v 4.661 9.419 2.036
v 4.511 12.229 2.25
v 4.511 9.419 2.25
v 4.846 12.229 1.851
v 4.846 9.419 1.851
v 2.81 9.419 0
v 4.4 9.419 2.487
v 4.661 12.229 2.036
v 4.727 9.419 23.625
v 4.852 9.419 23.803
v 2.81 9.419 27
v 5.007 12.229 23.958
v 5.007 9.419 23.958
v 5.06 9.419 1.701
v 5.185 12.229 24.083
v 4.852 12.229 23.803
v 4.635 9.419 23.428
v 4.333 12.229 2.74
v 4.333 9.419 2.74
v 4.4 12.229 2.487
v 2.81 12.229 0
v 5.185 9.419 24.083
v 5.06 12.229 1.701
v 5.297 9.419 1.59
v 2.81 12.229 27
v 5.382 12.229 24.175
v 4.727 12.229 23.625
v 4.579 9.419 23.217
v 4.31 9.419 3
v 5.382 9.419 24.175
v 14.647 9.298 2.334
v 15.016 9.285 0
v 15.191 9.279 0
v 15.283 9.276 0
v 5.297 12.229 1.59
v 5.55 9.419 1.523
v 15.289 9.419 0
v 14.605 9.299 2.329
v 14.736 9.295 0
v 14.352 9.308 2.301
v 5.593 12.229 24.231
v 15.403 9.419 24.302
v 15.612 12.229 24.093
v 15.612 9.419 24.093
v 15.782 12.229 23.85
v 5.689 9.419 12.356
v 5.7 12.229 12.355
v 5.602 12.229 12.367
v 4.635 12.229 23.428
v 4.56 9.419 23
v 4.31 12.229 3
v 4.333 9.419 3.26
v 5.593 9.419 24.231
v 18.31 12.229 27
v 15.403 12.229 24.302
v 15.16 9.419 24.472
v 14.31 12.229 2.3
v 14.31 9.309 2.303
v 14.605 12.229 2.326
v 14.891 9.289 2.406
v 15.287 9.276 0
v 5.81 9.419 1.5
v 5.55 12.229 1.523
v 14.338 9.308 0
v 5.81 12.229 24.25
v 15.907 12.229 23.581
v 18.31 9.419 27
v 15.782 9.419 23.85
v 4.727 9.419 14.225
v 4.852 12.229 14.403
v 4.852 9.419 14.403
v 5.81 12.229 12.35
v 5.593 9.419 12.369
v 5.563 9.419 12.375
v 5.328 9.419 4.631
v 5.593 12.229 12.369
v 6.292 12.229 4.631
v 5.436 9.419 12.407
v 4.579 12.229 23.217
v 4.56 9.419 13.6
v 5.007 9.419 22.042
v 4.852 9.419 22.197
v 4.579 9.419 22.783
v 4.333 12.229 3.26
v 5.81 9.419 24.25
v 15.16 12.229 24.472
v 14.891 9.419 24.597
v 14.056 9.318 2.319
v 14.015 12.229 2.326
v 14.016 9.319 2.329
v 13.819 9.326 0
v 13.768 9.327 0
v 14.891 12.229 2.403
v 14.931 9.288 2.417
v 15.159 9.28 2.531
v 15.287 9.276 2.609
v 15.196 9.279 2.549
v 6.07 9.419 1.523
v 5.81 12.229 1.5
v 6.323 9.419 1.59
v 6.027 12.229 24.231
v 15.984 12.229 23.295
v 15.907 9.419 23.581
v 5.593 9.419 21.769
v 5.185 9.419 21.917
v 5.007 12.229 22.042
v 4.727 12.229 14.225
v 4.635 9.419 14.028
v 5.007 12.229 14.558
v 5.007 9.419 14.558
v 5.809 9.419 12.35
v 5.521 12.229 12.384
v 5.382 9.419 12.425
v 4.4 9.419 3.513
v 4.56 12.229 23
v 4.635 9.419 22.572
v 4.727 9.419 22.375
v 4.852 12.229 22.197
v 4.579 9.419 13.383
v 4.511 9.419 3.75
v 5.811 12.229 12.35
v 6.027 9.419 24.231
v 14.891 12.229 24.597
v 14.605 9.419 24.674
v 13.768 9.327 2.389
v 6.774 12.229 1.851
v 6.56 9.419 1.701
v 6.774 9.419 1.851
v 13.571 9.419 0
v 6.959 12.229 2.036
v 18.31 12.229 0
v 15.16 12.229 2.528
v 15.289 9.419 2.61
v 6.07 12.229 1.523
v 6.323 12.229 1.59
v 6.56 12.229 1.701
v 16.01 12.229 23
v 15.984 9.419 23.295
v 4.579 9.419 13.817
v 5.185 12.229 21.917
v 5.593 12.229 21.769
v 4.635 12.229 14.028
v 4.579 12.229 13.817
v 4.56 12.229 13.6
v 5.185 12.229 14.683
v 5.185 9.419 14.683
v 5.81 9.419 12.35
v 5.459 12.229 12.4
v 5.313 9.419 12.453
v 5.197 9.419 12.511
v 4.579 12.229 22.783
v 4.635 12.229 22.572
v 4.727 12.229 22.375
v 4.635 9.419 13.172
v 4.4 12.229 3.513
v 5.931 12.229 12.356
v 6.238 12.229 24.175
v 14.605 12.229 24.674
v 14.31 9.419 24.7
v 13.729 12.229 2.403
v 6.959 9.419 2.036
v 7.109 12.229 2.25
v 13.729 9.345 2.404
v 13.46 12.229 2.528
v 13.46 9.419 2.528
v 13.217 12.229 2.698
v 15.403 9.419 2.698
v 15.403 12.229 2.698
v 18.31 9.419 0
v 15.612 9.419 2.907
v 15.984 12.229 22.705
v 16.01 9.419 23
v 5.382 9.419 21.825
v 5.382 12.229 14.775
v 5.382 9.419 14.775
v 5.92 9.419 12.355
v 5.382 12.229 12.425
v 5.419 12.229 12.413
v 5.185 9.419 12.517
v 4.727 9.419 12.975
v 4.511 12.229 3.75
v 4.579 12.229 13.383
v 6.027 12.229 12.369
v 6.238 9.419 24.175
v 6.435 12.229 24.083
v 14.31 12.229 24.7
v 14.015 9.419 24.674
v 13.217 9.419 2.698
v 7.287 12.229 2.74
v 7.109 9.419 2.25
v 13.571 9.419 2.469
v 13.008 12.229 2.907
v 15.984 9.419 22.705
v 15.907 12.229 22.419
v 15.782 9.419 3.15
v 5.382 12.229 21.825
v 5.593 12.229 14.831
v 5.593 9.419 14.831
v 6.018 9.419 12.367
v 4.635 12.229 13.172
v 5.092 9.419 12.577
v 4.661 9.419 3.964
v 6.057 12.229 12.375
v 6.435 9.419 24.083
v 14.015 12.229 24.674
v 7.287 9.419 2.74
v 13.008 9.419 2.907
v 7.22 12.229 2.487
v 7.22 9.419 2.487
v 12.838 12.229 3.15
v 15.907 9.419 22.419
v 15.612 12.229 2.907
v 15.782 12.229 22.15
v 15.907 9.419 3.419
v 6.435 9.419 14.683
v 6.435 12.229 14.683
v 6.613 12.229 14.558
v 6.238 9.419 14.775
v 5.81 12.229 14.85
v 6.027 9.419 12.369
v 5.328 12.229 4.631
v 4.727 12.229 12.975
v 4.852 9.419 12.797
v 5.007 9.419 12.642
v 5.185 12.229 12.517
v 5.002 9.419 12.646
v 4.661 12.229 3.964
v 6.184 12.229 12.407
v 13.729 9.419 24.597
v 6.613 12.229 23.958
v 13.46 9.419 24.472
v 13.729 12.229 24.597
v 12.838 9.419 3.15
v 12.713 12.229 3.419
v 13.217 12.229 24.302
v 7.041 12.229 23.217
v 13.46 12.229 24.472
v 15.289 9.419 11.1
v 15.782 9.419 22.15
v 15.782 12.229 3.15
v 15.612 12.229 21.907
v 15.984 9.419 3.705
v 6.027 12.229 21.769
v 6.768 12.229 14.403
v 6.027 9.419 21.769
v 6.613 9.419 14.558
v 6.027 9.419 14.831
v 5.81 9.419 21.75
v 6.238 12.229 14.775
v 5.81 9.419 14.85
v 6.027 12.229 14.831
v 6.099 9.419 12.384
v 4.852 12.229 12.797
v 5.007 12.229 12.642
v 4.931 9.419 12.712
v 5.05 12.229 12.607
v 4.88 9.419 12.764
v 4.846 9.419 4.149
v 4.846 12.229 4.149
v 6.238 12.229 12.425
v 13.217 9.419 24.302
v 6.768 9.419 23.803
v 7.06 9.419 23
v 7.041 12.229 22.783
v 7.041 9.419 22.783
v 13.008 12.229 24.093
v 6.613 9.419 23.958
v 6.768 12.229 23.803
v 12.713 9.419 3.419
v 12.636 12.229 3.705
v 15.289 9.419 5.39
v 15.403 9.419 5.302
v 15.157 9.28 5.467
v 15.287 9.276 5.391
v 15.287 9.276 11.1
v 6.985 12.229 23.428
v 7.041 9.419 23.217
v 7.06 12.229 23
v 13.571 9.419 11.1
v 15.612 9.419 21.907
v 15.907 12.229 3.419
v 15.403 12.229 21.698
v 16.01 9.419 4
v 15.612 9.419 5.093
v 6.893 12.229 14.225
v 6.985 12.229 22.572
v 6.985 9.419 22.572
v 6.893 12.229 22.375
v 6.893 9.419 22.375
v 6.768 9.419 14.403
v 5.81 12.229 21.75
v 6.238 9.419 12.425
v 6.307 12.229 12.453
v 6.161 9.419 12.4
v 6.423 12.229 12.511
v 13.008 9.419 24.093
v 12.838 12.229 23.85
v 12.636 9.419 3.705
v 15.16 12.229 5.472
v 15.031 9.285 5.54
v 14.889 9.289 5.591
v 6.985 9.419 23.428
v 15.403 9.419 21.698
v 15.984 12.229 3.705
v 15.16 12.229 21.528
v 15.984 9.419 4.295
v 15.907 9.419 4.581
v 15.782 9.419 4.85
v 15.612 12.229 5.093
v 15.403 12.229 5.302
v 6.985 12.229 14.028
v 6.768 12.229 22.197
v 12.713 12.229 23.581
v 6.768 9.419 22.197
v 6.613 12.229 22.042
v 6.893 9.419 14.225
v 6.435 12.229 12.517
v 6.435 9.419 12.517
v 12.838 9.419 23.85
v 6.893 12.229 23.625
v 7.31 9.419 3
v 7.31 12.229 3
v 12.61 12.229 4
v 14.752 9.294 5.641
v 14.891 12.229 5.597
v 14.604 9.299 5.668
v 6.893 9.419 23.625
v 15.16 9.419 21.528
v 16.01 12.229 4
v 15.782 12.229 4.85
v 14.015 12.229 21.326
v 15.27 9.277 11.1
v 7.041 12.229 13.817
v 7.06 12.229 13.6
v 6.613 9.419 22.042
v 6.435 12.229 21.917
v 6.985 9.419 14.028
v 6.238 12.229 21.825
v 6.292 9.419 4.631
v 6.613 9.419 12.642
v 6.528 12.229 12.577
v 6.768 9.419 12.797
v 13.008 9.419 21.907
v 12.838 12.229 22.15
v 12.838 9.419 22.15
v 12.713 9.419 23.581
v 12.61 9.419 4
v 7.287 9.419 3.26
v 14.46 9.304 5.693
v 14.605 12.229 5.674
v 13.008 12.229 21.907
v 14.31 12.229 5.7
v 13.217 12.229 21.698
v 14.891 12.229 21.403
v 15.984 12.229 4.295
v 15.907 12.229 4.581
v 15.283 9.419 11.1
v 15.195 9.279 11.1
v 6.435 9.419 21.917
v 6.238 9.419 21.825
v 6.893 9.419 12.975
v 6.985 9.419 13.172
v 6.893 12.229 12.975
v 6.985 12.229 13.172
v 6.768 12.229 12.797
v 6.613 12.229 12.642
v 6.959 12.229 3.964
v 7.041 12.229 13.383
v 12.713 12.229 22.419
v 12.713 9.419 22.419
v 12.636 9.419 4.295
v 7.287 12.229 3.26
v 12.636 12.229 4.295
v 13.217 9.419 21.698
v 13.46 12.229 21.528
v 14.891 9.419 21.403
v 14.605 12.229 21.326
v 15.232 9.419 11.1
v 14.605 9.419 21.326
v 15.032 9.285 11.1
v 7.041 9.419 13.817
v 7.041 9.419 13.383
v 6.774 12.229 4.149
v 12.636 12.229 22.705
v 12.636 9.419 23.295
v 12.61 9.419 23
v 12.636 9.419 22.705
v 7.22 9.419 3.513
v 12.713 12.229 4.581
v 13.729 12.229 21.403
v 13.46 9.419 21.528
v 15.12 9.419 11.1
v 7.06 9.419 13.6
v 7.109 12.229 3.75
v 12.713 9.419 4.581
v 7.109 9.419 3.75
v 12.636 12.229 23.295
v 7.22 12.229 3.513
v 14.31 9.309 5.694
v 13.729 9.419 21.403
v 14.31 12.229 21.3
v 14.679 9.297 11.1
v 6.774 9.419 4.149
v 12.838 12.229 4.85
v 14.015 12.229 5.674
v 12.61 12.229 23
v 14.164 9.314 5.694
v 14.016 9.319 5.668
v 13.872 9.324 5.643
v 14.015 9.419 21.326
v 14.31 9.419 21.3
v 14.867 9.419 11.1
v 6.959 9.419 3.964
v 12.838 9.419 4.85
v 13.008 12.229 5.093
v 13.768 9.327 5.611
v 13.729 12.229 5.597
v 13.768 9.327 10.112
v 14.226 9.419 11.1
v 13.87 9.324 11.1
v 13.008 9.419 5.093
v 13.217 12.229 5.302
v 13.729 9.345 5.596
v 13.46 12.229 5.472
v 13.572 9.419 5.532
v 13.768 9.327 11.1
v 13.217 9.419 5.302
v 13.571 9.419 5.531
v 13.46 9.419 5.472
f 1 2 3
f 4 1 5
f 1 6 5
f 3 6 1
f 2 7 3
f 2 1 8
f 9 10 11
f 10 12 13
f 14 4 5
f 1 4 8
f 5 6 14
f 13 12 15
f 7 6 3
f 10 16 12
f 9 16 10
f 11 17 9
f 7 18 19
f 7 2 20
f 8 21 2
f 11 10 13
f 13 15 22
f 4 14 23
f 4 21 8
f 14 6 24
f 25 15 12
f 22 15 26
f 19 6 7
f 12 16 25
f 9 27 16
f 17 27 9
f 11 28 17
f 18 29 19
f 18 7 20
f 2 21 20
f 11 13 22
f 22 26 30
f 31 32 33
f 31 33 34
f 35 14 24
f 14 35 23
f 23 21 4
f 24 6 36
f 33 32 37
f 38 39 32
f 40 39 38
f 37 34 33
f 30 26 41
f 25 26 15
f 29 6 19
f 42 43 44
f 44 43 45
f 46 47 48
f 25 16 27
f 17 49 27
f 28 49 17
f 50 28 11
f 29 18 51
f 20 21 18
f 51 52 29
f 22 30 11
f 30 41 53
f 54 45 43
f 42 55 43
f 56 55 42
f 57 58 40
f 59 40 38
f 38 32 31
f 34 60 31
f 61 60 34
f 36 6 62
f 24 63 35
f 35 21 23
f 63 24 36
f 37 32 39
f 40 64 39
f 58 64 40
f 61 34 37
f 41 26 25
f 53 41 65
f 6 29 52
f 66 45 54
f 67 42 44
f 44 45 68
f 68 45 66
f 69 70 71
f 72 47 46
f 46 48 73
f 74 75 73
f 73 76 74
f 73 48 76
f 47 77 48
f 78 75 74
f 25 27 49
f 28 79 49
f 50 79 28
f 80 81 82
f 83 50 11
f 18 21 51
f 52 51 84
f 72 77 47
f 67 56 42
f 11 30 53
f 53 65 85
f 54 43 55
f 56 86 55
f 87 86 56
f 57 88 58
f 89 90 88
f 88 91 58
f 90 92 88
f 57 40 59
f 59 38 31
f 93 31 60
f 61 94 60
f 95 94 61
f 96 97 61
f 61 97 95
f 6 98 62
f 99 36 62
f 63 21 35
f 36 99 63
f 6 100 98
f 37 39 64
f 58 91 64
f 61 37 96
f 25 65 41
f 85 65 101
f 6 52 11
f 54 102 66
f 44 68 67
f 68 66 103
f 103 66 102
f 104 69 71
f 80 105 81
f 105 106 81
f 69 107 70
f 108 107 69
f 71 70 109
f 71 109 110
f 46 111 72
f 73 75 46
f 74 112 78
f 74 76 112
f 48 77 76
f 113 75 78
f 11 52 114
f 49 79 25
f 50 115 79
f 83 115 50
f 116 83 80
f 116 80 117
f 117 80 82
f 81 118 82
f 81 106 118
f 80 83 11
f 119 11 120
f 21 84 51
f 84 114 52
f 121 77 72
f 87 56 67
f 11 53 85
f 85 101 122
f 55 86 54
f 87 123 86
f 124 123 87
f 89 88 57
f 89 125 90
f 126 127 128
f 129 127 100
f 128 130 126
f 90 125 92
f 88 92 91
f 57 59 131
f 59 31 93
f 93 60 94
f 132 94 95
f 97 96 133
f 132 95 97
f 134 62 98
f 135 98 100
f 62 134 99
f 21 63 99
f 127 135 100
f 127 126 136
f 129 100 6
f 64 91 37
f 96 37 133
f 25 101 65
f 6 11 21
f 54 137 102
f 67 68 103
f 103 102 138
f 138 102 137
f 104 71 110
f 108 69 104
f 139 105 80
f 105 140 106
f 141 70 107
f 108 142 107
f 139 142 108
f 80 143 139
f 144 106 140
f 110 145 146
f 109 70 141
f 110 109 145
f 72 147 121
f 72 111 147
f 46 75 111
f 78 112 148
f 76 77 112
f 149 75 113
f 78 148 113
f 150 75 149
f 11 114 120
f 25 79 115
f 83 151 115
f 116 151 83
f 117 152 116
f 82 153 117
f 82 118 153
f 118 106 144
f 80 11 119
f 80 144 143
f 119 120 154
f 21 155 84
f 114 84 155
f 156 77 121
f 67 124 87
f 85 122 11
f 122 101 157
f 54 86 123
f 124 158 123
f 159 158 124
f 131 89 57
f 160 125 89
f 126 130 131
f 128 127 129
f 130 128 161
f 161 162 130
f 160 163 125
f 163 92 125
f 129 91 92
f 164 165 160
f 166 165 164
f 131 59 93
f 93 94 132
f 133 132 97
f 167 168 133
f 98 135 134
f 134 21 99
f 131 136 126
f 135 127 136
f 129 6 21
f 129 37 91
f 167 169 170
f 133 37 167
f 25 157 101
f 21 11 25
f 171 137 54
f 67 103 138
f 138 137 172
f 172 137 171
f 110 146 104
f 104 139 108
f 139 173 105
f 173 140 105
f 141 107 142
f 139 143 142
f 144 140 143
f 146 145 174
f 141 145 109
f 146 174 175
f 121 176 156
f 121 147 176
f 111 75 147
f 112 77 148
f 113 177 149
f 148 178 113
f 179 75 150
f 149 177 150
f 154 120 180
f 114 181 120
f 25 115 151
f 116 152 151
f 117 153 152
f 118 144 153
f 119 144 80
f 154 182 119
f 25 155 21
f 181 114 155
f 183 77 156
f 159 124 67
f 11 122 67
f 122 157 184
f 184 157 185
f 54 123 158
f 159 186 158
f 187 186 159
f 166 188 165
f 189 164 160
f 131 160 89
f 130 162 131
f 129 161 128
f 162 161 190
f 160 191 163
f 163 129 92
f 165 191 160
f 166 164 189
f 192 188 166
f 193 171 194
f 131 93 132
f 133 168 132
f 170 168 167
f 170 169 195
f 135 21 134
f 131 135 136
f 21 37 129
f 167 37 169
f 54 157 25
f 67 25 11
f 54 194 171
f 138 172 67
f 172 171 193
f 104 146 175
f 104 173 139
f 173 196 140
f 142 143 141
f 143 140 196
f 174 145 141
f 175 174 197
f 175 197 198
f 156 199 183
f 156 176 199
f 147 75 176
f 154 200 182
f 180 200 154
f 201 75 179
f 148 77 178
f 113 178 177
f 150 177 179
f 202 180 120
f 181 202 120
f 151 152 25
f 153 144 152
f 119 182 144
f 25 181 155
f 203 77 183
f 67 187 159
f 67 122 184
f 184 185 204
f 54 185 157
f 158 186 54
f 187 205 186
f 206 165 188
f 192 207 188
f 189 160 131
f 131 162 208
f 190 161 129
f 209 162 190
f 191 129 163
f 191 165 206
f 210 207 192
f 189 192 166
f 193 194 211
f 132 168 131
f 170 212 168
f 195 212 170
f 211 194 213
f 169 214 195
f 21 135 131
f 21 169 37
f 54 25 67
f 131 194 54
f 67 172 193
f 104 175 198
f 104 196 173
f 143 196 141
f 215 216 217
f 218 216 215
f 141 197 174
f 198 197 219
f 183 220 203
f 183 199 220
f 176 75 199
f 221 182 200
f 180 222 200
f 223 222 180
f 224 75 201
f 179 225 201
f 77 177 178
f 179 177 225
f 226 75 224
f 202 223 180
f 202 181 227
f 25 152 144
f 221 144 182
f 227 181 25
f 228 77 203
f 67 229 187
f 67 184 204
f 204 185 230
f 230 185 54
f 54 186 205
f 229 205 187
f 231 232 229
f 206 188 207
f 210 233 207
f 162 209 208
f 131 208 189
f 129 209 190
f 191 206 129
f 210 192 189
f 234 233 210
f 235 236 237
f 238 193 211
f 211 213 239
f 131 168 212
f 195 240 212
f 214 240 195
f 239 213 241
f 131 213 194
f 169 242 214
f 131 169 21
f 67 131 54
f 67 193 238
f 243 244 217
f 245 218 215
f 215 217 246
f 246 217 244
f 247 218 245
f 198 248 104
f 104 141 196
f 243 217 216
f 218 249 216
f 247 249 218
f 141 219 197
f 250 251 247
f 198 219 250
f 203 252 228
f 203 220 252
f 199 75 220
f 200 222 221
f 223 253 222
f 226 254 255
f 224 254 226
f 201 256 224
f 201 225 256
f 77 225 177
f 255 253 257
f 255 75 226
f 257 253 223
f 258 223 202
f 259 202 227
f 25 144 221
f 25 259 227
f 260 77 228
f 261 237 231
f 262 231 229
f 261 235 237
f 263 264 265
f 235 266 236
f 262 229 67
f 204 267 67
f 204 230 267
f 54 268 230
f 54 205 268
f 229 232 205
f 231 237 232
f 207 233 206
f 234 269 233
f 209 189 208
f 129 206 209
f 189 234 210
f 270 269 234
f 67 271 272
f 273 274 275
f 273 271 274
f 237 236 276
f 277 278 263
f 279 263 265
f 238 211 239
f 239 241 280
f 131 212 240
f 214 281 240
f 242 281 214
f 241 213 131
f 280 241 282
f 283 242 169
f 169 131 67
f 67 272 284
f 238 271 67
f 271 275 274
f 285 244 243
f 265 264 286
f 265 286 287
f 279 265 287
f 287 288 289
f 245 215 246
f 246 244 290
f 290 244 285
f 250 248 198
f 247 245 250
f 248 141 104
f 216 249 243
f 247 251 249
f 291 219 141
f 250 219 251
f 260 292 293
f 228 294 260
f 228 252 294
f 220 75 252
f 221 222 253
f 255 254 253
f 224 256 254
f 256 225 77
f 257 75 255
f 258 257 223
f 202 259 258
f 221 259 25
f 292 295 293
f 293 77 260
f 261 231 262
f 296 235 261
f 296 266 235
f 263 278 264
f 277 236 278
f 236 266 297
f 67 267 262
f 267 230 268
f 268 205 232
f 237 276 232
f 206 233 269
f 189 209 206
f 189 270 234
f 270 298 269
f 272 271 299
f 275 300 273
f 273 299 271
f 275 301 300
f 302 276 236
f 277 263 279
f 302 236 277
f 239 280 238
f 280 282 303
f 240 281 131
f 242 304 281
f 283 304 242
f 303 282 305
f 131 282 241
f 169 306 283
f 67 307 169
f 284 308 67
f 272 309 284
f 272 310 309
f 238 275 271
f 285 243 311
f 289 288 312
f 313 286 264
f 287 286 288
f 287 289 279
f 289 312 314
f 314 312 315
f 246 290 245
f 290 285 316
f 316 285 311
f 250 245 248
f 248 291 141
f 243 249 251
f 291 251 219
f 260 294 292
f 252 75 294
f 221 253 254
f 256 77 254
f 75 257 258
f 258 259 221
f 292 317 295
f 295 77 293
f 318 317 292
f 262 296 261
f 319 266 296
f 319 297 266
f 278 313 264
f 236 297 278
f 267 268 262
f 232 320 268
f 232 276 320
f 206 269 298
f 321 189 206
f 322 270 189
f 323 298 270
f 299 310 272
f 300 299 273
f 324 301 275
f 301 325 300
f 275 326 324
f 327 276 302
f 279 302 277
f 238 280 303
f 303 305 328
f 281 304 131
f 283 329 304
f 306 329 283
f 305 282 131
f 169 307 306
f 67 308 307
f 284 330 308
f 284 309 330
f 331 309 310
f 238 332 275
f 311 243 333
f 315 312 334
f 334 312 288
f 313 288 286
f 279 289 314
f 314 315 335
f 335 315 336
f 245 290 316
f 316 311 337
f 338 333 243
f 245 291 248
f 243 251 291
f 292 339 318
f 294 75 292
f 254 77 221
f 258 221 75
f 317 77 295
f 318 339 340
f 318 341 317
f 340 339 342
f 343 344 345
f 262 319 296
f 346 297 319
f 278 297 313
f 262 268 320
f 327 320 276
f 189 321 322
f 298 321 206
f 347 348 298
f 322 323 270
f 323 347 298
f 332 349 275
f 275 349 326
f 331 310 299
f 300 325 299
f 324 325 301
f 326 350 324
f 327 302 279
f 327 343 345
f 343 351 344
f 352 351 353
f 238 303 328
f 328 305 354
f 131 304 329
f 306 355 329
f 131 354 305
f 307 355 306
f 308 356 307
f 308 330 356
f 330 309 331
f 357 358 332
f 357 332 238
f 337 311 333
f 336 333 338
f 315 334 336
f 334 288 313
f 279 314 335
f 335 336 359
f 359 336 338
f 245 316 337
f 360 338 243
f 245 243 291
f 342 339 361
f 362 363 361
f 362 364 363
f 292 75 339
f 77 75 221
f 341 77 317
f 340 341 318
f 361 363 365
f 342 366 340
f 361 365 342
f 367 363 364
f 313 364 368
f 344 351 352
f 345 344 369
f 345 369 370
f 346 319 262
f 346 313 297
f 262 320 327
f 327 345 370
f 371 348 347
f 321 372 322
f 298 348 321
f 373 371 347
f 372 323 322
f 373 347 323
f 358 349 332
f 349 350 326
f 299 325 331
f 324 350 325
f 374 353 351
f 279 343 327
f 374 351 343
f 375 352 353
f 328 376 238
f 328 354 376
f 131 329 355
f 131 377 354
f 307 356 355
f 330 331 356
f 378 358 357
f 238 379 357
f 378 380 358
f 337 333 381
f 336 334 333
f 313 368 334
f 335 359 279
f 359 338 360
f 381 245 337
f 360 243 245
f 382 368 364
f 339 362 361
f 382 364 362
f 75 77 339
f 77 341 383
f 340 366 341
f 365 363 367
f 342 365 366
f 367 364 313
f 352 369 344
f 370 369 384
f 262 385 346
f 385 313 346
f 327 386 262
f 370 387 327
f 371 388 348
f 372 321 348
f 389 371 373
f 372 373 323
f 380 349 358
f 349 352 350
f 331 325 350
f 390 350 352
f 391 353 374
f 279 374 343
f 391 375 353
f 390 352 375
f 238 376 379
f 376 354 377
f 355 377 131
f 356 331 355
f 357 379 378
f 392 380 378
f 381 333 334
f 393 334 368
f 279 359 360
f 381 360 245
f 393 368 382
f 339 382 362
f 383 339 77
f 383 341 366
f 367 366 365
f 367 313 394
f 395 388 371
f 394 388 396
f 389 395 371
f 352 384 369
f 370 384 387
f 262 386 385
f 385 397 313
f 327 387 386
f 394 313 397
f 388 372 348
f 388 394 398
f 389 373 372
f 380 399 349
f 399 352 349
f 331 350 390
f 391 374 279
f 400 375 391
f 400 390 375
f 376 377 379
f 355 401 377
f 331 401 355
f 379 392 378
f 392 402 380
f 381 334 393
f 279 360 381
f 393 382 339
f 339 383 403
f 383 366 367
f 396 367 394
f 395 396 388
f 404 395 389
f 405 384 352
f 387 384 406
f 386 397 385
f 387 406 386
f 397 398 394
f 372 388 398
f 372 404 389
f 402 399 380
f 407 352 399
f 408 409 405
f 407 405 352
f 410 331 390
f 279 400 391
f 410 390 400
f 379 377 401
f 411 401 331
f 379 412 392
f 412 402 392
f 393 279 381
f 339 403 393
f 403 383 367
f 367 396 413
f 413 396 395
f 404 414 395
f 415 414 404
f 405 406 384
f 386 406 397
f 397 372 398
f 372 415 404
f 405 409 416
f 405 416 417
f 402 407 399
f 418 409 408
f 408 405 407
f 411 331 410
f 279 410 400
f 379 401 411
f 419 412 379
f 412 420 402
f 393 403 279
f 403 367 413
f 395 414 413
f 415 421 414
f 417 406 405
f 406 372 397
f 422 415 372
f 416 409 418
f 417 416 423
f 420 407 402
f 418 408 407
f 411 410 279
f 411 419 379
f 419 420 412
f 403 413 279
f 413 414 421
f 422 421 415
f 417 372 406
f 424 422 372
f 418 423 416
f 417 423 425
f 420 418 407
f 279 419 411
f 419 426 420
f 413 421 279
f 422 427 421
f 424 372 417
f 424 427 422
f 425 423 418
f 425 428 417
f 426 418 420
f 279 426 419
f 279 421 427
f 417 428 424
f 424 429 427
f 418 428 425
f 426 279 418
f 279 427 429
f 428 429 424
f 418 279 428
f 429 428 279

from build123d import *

# Parameters (mm, degrees)
RESSALTO_EXTRUS_O1_START   = -2.81
RESSALTO_EXTRUS_O1_DEPTH   = 2.81
RESSALTO_EXTRUS_O1_START_2 = -11.039175584
RESSALTO_EXTRUS_O1_2_DEPTH = 8.229175584
RESSALTO_EXTRUS_O1_3_DEPTH = 2.81
RESSALTO_EXTRUS_O1_START_3 = -12.229175584
RESSALTO_EXTRUS_O1_4_DEPTH = 1.19
RESSALTO_EXTRUS_O1_START_4 = -10.229175584
RESSALTO_EXTRUS_O1_5_DEPTH = 2
RESSALTO_EXTRUS_O1_6_DEPTH = 11.1
RESSALTO_EXTRUS_O1_7_DEPTH = 13.5
RESSALTO_EXTRUS_O1_START_5 = 11.1
RESSALTO_EXTRUS_O1_8_DEPTH = 2.4
ESBO_O2_R                  = 1.25
CORTE_EXTRUS_O1_DEPTH      = 10
CORTE_EXTRUS_O2_DEPTH      = 11.1
ESBO_O4_W                  = 7.32569207
ESBO_O4_H                  = 2.81
RESSALTO_EXTRUS_O2_DEPTH   = 27
CORTE_EXTRUS_O3_DEPTH      = 10
CORTE_EXTRUS_O3_DEPTH_BACK = 10
ESBO_O5_R                  = 1.7


with BuildPart() as part:
    # Ressalto-extrusão1: read off the stored shape, not the designer's step
    # Ressalto-extrusão1 outline → Ressalto-extrusão1 (new body)
    with BuildSketch(Plane(origin=(0, 12.229175584, 0), x_dir=(1, 0, 0), z_dir=(0, 1, 0)).offset(RESSALTO_EXTRUS_O1_START)):
        Polygon((2.81, -27), (15.31, -27), (15.31, -13.5), (15.31, 0), (2.81, 0), align=None)
        Polygon((4.510961894, -3.75), (4.400461069, -3.513030215), (4.33278837, -3.260472267), (4.31, -3), (4.33278837, -2.739527733), (4.400461069, -2.486969785), (4.510961894, -2.25), (4.660933335, -2.035818585), (4.845818585, -1.850933335), (5.06, -1.700961894), (5.296969785, -1.590461069), (5.549527734, -1.52278837), (5.81, -1.5), (6.070472267, -1.52278837), (6.323030215, -1.590461069), (6.56, -1.700961894), (6.774181415, -1.850933335), (6.959066665, -2.035818585), (7.109038106, -2.25), (7.219538931, -2.486969785), (7.28721163, -2.739527733), (7.31, -3), (7.28721163, -3.260472267), (7.219538931, -3.513030215), (7.109038106, -3.75), (6.959066665, -3.964181415), (6.774181415, -4.149066665), (6.292090707, -4.631157372), (5.327909293, -4.631157372), (4.660933335, -3.964181415), align=None, mode=Mode.SUBTRACT)
    extrude(amount=RESSALTO_EXTRUS_O1_DEPTH)

    # Ressalto-extrus_o1 2 outline → Ressalto-extrus_o1 2 (add)
    with BuildSketch(Plane(origin=(0, 12.229175584, 0), x_dir=(1, 0, 0), z_dir=(0, 1, 0)).offset(RESSALTO_EXTRUS_O1_START_2)):
        Polygon((3.005299462, -7.857883832), (2.81, -7.519615241), (2.81, -11.1), (15.31, -11.1), (15.31, 0), (9.687350269, 0), (11.419401077, -3), (8.614700538, -7.857883832), align=None)
    extrude(amount=RESSALTO_EXTRUS_O1_2_DEPTH)

    # Ressalto-extrus_o1 3 outline → Ressalto-extrus_o1 3 (add)
    with BuildSketch(Plane(origin=(0, 12.229175584, 0), x_dir=(1, 0, 0), z_dir=(0, 1, 0)).offset(RESSALTO_EXTRUS_O1_START_2)):
        Polygon((2.51, -3), (4.242050808, 0), (0, 0), (0, -11.1), (2.81, -11.1), (2.81, -7.519615241), (3.005299462, -7.857883832), (8.614700538, -7.857883832), (11.419401077, -3), (9.687350269, 0), (7.377949192, 0), (9.11, -3), (7.46, -5.857883832), (4.16, -5.857883832), align=None)
    extrude(amount=RESSALTO_EXTRUS_O1_3_DEPTH)

    # Ressalto-extrus_o1 4 outline → Ressalto-extrus_o1 4 (add)
    with BuildSketch(Plane(origin=(0, 12.229175584, 0), x_dir=(1, 0, 0), z_dir=(0, 1, 0)).offset(RESSALTO_EXTRUS_O1_START_3)):
        Polygon((2.51, -3), (4.242050808, 0), (1.932649731, 0), (0.200598923, -3), (3.005299462, -7.857883832), (8.614700538, -7.857883832), (11.419401077, -3), (9.687350269, 0), (7.377949192, 0), (9.11, -3), (7.46, -5.857883832), (4.16, -5.857883832), align=None)
    extrude(amount=RESSALTO_EXTRUS_O1_4_DEPTH)

    # Ressalto-extrus_o1 5 outline → Ressalto-extrus_o1 5 (add)
    with BuildSketch(Plane(origin=(0, 12.229175584, 0), x_dir=(1, 0, 0), z_dir=(0, 1, 0)).offset(RESSALTO_EXTRUS_O1_START_4)):
        Polygon((2.51, -3), (4.16, -5.857883832), (7.46, -5.857883832), (9.11, -3), (7.377949192, 0), (4.242050808, 0), align=None)
        Polygon((4.400461069, -3.513030215), (4.33278837, -3.260472267), (4.31, -3), (4.33278837, -2.739527733), (4.400461069, -2.486969785), (4.510961894, -2.25), (4.660933335, -2.035818585), (4.845818585, -1.850933335), (5.06, -1.700961894), (5.296969785, -1.590461069), (5.549527734, -1.52278837), (5.81, -1.5), (6.070472267, -1.52278837), (6.323030215, -1.590461069), (6.56, -1.700961894), (6.774181415, -1.850933335), (6.959066665, -2.035818585), (7.109038106, -2.25), (7.219538931, -2.486969785), (7.28721163, -2.739527733), (7.31, -3), (7.28721163, -3.260472267), (7.219538931, -3.513030215), (7.109038106, -3.75), (6.959066665, -3.964181415), (6.774181415, -4.149066665), (6.292090707, -4.631157372), (5.327909293, -4.631157372), (4.660933335, -3.964181415), (4.510961894, -3.75), align=None, mode=Mode.SUBTRACT)
    extrude(amount=RESSALTO_EXTRUS_O1_5_DEPTH)

    # Ressalto-extrus_o1 6 outline → Ressalto-extrus_o1 6 (add)
    with BuildSketch(Plane.XY):
        Polygon((17.745732851, 5.751121431), (17.829587792, 6.709587792), (17.745732851, 7.668054154), (17.496715918, 8.597398), (17.090103246, 9.469381688), (16.538249557, 10.257510436), (15.857922643, 10.937837349), (15.31, 11.321496914), (15.31, 2.097678671), (15.857922643, 2.481338236), (16.538249557, 3.161665149), (17.090103246, 3.949793896), (17.496715918, 4.821777584), align=None)
    extrude(amount=RESSALTO_EXTRUS_O1_6_DEPTH)

    # Ressalto-extrus_o1 7 outline → Ressalto-extrus_o1 7 (cut)
    with BuildSketch(Plane.XY):
        Polygon((15.31, 1.19), (15.31, 2.097678671), (15.069793896, 1.929484546), (13.96, 1.19), align=None)
        Polygon((15.264423259, 6.188643259), (15.31, 6.709587792), (15.264423259, 7.230532325), (15.129077862, 7.735648222), (14.908076211, 8.209587792), (14.608133329, 8.637950621), (14.238362829, 9.007721122), (13.81, 9.307664004), (13.33606043, 9.528665655), (12.830944533, 9.664011051), (12.378861267, 9.703563212), (12.368467114, 9.704472583), (12.31, 9.709587792), (12.049527733, 9.686799421), (11.789055467, 9.664011051), (11.536497519, 9.596338353), (11.28393957, 9.528665655), (11.166538463, 9.473920619), (11.049137357, 9.419175584), (2.81, 9.419175584), (2.81, 4), (11.049137357, 4), (11.28393957, 3.89050993), (11.789055467, 3.755164533), (12.31, 3.709587792), (12.830944533, 3.755164533), (13.33606043, 3.89050993), (13.81, 4.111511581), (14.238362829, 4.411454463), (14.608133329, 4.781224963), (14.908076211, 5.209587792), (15.129077862, 5.683527362), align=None)
    extrude(amount=RESSALTO_EXTRUS_O1_7_DEPTH, mode=Mode.SUBTRACT)

    # Ressalto-extrus_o1 8 outline → Ressalto-extrus_o1 8 (cut)
    with BuildSketch(Plane.XY.offset(RESSALTO_EXTRUS_O1_START_5)):
        Polygon((15.31, 9.419175584), (15.31, 9.709587792), (12.378861267, 9.703563212), (12.830944533, 9.664011051), (13.33606043, 9.528665655), (13.570862645, 9.419175584), align=None)
    extrude(amount=RESSALTO_EXTRUS_O1_8_DEPTH, mode=Mode.SUBTRACT)

    # Esboço2 → Corte-extrusão1 (cut)
    with BuildSketch(Plane(origin=(0, 12.229175584, 0), x_dir=(1, 0, 0), z_dir=(0, 1, 0))):
        with Locations(Location((5.81, -13.6, 0), (0, 0, 138.045690322))):
            Circle(ESBO_O2_R)
        with Locations(Location((5.81, -23, 0), (0, 0, 180))):
            Circle(ESBO_O2_R)
    extrude(amount=-CORTE_EXTRUS_O1_DEPTH, mode=Mode.SUBTRACT)

    # Esboço3 → Corte-extrusão2 (cut)
    with BuildSketch(Plane(origin=(0, 0, 0), x_dir=(-1, 0, 0), z_dir=(0, 0, -1))):
        Polygon((-15.31, 11.321496914), (-15.28721163, 9.27601462), (-11.049137357, 9.419175584), (-11.049137357, 5.796906152), (1.171598193, 5.796906152), (1.171598193, -2.184845068), (-19.517418651, -2.184845068), (-19.517418651, 11.321496914), align=None)
    extrude(amount=-CORTE_EXTRUS_O2_DEPTH, mode=Mode.SUBTRACT)

    # Esboço4 → Ressalto-extrusão2 (add)
    with BuildSketch(Plane.XY.offset(27)):
        with Locations((14.647153965, 10.824175584)):
            Rectangle(ESBO_O4_W, ESBO_O4_H)
    extrude(amount=-RESSALTO_EXTRUS_O2_DEPTH)

    # Esboço5 → Corte-extrusão3 (cut, two sides: drawn at the far end of the back side and taken through both)
    with BuildSketch(Plane.XZ.offset(-9.419175584).offset(-CORTE_EXTRUS_O3_DEPTH_BACK)):
        with Locations(Location((14.31, 23, 0), (0, 0, 90))):
            Circle(ESBO_O5_R)
        with Locations(Location((14.31, 4, 0), (0, 0, 90))):
            Circle(ESBO_O5_R)
    extrude(amount=CORTE_EXTRUS_O3_DEPTH + CORTE_EXTRUS_O3_DEPTH_BACK, mode=Mode.SUBTRACT)


solid = part.part
